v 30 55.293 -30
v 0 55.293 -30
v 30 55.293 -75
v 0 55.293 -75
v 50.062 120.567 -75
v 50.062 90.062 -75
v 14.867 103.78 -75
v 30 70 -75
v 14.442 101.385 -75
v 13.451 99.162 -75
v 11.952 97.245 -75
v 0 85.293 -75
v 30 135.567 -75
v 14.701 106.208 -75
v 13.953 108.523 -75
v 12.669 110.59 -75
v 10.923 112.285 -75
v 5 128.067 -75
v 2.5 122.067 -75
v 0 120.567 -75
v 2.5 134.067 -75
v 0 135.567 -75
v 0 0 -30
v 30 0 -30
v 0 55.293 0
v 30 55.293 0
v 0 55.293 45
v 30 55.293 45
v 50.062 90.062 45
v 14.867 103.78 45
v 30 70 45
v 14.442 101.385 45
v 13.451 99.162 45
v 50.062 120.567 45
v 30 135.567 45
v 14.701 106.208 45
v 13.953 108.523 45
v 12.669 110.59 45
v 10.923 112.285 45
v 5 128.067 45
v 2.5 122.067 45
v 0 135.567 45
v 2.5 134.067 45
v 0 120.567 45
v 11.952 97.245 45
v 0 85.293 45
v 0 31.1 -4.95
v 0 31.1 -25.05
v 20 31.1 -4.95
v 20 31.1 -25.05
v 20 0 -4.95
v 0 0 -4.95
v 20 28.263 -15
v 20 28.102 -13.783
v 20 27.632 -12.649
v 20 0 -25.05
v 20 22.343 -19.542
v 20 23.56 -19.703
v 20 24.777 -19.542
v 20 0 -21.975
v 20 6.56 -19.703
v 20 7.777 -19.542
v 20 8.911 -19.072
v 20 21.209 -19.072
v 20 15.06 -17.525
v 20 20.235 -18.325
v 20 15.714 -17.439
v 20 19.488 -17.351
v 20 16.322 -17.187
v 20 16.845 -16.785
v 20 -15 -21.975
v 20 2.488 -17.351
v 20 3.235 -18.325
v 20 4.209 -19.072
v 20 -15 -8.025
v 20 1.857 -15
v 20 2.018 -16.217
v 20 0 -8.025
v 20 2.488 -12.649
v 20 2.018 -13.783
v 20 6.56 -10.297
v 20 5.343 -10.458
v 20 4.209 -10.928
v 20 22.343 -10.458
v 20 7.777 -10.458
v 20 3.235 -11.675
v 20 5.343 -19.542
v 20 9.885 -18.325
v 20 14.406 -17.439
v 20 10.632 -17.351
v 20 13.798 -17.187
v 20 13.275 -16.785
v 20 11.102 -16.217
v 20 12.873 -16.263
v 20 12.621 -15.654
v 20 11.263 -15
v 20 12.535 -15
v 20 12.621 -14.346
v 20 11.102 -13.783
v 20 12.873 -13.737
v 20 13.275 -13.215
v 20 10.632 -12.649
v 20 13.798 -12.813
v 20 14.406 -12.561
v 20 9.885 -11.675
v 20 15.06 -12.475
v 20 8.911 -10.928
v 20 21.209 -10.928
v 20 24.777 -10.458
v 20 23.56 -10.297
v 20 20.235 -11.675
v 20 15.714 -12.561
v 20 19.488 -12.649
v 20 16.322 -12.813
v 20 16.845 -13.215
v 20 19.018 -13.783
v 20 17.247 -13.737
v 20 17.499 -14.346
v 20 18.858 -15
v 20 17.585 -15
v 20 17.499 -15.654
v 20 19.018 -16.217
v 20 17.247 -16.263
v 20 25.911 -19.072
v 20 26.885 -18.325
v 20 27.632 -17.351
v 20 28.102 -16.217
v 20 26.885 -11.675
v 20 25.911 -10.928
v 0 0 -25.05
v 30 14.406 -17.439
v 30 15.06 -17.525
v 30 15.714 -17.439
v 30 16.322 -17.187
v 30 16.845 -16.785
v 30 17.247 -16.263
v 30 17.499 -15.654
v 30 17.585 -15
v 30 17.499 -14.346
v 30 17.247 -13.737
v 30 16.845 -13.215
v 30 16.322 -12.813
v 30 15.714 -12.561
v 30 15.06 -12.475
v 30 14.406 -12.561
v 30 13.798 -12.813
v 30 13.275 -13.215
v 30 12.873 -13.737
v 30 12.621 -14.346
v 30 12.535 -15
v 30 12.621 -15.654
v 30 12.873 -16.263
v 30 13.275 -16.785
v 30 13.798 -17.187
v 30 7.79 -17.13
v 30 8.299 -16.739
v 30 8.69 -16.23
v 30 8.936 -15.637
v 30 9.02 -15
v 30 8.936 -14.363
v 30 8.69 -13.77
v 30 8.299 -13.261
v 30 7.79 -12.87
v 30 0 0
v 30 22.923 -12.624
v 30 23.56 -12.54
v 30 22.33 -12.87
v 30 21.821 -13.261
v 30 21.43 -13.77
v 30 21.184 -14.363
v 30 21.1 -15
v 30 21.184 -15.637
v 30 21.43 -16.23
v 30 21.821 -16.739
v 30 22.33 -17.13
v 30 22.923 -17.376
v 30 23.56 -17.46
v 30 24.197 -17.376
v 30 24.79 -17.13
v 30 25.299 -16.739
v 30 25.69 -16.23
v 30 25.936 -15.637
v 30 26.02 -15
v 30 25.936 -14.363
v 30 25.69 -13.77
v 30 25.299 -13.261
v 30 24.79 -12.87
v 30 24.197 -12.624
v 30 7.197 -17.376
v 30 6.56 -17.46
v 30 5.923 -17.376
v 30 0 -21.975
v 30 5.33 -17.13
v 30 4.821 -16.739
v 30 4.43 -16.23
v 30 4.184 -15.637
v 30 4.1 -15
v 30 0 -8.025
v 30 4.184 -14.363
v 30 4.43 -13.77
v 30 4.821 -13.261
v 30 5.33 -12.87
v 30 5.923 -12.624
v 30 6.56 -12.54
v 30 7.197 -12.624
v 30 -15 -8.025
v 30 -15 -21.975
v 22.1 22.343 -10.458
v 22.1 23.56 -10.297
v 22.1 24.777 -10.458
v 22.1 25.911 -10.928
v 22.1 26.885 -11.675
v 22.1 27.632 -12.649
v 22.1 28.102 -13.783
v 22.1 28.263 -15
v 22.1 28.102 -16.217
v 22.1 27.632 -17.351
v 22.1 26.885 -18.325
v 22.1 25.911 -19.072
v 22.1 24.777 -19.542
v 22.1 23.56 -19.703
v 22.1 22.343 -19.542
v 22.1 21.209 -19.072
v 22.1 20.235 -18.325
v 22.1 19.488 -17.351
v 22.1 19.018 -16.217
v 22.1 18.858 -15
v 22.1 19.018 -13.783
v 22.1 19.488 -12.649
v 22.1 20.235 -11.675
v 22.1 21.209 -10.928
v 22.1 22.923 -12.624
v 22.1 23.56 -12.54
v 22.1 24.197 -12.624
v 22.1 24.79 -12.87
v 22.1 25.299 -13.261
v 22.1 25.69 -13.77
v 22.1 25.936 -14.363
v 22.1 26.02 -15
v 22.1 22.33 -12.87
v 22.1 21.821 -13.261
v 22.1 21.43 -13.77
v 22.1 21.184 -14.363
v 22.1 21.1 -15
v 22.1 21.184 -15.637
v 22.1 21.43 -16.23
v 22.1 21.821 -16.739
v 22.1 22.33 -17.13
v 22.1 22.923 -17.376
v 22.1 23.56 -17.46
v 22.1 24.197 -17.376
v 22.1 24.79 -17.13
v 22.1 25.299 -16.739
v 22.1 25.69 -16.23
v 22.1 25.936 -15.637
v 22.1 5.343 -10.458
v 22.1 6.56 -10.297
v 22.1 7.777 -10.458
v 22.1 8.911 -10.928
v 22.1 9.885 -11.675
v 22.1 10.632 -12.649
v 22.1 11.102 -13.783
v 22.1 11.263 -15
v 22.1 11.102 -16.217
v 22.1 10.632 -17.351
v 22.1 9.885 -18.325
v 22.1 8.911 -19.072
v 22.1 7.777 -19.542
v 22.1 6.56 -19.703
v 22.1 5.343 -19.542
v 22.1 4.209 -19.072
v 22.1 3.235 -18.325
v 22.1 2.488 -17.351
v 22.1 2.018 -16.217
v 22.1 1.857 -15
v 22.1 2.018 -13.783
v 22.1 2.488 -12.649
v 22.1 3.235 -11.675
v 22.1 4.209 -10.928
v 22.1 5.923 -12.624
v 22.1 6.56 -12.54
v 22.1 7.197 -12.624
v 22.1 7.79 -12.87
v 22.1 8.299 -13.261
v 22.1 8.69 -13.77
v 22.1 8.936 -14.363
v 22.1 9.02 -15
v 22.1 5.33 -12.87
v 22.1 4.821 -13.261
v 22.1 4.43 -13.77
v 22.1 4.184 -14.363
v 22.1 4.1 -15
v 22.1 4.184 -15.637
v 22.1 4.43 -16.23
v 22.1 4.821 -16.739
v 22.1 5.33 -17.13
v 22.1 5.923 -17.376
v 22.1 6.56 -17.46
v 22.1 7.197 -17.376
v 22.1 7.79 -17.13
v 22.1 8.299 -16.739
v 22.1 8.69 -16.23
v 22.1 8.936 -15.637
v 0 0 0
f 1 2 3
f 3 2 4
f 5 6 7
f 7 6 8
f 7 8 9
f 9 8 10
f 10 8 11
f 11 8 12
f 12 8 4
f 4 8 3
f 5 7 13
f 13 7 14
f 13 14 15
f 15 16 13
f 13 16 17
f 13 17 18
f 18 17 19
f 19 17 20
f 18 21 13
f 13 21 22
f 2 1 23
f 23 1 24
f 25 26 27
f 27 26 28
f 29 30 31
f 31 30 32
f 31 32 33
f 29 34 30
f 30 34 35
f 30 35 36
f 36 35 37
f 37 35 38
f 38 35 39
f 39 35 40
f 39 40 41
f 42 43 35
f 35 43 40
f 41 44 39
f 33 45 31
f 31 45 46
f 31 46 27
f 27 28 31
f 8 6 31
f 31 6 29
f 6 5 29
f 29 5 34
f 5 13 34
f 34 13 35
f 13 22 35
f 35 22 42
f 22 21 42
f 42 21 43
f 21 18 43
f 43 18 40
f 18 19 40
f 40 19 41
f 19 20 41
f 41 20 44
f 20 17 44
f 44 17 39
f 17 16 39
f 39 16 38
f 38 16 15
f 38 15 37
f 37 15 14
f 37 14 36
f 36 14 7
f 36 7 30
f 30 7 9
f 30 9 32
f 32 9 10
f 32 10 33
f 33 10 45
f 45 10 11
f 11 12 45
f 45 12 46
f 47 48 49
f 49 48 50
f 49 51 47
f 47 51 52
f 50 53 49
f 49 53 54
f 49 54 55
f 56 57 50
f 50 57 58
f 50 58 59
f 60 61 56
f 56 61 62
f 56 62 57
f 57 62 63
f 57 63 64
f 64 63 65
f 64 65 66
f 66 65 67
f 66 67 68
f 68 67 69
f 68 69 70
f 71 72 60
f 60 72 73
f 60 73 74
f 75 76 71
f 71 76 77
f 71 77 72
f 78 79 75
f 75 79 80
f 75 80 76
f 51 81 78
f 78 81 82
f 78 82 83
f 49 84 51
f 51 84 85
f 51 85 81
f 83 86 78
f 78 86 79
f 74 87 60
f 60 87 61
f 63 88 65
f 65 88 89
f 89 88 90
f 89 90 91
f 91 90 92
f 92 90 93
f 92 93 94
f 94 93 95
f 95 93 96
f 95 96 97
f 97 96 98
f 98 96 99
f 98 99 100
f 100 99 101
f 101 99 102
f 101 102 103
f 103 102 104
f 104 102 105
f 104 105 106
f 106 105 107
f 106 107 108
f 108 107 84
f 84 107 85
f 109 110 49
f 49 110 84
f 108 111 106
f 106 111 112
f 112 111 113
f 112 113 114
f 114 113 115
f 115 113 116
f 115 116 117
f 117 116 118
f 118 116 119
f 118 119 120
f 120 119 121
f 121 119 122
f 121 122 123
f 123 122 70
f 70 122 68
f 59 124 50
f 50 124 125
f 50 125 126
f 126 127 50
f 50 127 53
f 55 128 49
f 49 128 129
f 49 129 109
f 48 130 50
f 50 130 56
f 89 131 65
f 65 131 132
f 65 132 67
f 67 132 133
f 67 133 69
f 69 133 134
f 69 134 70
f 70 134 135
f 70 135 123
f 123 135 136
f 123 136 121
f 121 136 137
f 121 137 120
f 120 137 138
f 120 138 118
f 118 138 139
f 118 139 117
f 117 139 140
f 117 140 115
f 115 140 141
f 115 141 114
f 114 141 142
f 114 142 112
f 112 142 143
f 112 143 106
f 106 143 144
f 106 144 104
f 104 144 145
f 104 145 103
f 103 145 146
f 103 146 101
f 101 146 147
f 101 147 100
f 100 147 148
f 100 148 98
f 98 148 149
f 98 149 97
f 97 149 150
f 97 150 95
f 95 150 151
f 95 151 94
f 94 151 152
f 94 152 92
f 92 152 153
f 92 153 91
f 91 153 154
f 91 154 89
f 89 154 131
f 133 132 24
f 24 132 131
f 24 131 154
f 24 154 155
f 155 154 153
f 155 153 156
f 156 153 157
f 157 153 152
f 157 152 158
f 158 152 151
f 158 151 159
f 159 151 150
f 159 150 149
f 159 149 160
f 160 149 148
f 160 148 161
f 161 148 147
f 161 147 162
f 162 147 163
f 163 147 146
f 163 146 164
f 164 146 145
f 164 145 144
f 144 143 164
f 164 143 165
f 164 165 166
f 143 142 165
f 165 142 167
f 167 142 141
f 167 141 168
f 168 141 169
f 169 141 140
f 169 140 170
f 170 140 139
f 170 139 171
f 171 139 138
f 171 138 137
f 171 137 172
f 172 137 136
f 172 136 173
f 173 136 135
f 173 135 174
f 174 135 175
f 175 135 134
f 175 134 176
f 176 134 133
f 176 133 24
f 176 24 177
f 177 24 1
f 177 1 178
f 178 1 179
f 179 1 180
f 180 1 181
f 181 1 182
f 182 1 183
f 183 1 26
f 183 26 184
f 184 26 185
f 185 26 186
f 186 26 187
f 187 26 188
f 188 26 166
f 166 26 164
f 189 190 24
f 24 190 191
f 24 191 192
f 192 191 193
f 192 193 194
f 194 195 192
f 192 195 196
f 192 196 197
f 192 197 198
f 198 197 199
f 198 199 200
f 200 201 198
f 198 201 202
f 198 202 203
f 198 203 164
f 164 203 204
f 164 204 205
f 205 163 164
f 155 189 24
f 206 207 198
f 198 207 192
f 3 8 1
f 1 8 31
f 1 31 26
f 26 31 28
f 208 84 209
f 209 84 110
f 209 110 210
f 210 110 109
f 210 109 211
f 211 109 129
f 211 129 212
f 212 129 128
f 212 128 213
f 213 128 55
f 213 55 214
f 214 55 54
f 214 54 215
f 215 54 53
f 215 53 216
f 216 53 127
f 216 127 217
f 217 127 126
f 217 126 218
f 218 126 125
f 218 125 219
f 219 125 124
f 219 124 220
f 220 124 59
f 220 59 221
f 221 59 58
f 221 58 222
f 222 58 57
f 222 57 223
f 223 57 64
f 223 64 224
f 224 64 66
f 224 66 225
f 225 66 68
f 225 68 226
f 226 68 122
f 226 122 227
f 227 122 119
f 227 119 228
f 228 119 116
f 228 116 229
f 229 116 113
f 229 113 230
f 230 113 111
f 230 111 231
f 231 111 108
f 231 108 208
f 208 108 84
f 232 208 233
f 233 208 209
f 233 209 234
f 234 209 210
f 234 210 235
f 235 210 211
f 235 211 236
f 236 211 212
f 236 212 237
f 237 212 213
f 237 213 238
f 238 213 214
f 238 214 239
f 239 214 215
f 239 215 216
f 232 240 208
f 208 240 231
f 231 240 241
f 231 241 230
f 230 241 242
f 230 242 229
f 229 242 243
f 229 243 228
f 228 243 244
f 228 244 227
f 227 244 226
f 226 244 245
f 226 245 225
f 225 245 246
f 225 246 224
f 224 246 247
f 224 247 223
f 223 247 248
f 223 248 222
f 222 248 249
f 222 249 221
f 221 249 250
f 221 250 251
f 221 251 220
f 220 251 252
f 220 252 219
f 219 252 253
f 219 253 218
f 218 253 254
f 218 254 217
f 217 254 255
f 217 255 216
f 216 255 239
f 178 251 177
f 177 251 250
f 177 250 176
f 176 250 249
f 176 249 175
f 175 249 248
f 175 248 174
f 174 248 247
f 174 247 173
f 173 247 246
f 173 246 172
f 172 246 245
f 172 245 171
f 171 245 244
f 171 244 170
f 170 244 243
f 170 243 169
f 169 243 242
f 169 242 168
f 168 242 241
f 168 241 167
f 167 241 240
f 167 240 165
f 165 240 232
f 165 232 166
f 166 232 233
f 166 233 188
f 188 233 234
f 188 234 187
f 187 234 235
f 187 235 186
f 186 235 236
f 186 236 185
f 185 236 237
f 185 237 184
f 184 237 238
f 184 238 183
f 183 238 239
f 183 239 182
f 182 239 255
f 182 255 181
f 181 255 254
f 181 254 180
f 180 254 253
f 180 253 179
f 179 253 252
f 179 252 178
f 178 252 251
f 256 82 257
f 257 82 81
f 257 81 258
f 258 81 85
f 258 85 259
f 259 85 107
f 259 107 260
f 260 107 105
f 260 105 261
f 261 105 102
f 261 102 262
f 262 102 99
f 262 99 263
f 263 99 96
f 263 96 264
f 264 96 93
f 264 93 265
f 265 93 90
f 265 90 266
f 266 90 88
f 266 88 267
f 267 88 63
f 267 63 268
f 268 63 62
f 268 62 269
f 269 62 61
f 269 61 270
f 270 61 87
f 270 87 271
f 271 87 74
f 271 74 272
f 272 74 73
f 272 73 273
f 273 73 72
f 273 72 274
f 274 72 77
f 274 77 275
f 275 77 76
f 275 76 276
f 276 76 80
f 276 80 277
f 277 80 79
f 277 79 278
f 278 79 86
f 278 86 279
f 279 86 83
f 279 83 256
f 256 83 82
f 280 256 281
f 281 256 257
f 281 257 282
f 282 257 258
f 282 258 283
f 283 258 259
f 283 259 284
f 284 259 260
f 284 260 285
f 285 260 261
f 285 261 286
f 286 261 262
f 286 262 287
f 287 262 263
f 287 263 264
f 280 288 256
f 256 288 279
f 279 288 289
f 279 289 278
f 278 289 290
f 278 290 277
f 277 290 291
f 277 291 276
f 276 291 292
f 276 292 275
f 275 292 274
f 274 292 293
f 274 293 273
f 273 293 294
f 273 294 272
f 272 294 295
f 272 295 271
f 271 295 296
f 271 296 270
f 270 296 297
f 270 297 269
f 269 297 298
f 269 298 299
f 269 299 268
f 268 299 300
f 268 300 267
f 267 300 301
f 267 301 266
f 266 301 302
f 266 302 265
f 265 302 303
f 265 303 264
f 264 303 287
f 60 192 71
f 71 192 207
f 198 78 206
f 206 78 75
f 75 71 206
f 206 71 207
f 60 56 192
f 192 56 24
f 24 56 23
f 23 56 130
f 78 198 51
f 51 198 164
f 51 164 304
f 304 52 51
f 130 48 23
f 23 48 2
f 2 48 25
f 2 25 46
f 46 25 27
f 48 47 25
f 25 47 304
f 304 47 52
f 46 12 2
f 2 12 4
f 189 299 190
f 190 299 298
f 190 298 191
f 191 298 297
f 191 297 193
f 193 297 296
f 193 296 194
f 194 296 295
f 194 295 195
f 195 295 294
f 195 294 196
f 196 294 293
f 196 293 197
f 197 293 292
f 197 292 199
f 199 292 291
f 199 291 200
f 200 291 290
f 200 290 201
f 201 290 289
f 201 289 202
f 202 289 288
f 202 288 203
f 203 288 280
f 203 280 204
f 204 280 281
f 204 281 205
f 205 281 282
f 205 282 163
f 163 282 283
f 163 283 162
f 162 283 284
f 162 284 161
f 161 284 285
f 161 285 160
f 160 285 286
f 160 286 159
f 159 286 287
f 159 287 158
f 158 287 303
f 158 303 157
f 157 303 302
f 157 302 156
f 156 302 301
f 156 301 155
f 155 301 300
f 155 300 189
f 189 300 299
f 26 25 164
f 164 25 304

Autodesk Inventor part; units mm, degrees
ref_plane "YZ Plane" through (0, 0, 0) normal (1, 0, 0) x (0, 1, 0)
ref_plane "XZ Plane" through (0, 0, 0) normal (0, 1, 0) x (-1, 0, 0)
sketch "Sketch1" plane through (0, 0, 0) normal (0, 0, 1) x (1, 0, 0)
  line L0 (0, 0) -> (25, 0)
  line L1 (25, 0) -> (25, 40)
  line L2 (25, 40) -> (0, 40)
  line L3 (0, 40) -> (0, 0)
  dimension "d1" = 25
  dimension "d2" = 40
  dimension "d3" = 25
extrude "Extrusion1" add sketch "Sketch1" against normal blind 30
sketch "Sketch2" plane through (25, 0, 0) normal (1, 0, 0) x (0, 0, -1)
  line L0 (0, 0) -> (30, 0) projected
  circle A0 centre (15, 6.56) radius 2.46
extrude "Extrusion2" cut sketch "Sketch2" against normal blind 30
sketch "Sketch3" plane through (0, 0, 0) normal (-1, 0, 0) x (0, 0, 1)
  line L0 (0, 0) -> (-30, 0) projected
  line L1 (-25.05, 0) -> (-4.95, 0)
  line L2 (-4.95, 0) -> (-4.95, 33.12)
  line L3 (-4.95, 33.12) -> (-25.05, 33.12)
  line L4 (-25.05, 33.12) -> (-25.05, 0)
  dimension "d11" = 20.1
extrude "Extrusion3" cut sketch "Sketch3" against normal blind 20
sketch "Sketch4" plane through (0, 0, 0) normal (0, -1, 0) x (1, 0, 0)
  line L0 (20, -4.95) -> (20, -25.05) projected
  line L1 (20, -15) -> (25, -15)
  line L2 (25, 0) -> (25, -30) projected
  line L3 (20, -8.025) -> (25, -8.025)
  line L4 (25, -8.025) -> (25, -21.975)
  line L5 (25, -21.975) -> (20, -21.975)
  line L6 (20, -21.975) -> (20, -8.025)
  line L7 (20, -8.025) -> (25, -21.975) construction
  line L8 (25, -8.025) -> (20, -21.975) construction
  line L9 (25, -12.54) -> (25, -17.46) projected
  point P0 (0, 0)
  point P1 (22.5, -15)
  dimension "d14" = 13.95
extrude "Extrusion4" add sketch "Sketch4" along normal blind 15
sketch "Sketch5" plane through (20, 0, 0) normal (-1, 0, 0) x (0, 0, 1)
  circle A0 centre (-15, 6.56) radius 2.46 projected
  circle A1 centre (-15, 6.56) radius 4.7025
  circle A2 centre (-15, 6.56) radius 2.46 projected
  circle A3 centre (-15, 6.56) radius 2.46
  point P0 (0, 0)
  dimension "d17" = 9.405
extrude "Extrusion5" cut sketch "Sketch5" against normal blind 2.1
sketch "Sketch6" plane through (25, 0, 0) normal (1, 0, 0) x (0, 0, -1)
  circle A0 centre (15, 6.56) radius 4.7025 projected
  line L0 (15, 6.56) -> (15, 23.56)
  circle A1 centre (15, 23.56) radius 2.46
  point P0 (0, 0)
  dimension "d20" = 17
  dimension "d21" = 4.92
extrude "Extrusion6" cut sketch "Sketch6" against normal blind 10 contours A1
sketch "Sketch7" plane through (20, 0, 0) normal (-1, 0, 0) x (0, 0, 1)
  circle A0 centre (-15, 23.56) radius 2.46 projected
  circle A1 centre (-15, 23.56) radius 4.7025
  point P0 (0, 0)
  dimension "d24" = 9.405
extrude "Extrusion7" cut sketch "Sketch7" against normal blind 2.1
sketch "Sketch9" plane through (25, 0, 0) normal (1, 0, 0) x (0, 0, -1)
  circle A0 centre (15, 6.56) radius 2.46 projected
  circle A1 centre (15, 6.56) radius 2.46
  circle A2 centre (15, 23.56) radius 2.46 projected
  circle A3 centre (15, 23.56) radius 2.46
  line L0 (30, 40) -> (30, 0) projected
  line L1 (30, 0) -> (30, 40)
  line L2 (30, 40) -> (0, 40)
  line L3 (0, 40) -> (0, 0)
  line L4 (0, 0) -> (8.025, 0) projected
  line L5 (21.975, 0) -> (21.975, -15)
  line L6 (21.975, -15) -> (8.025, -15)
  line L7 (8.025, -15) -> (8.025, 0)
  line L8 (0, 0) -> (8.025, 0)
  line L9 (21.975, 0) -> (30, 0)
extrude "Extrusion8" add sketch "Sketch9" along normal blind 5
sketch "Sketch10" plane through (0, 40, 0) normal (0, 1, 0) x (1, 0, 0)
  line L0 (0, 30) -> (30, 30) projected
  line L1 (30, 0) -> (0, 0) projected
  line L2 (0, 30) -> (30, 30)
  line L3 (30, 30) -> (30, 0)
  line L4 (30, 0) -> (0, 0)
  line L5 (0, 0) -> (0, 30)
extrude "Extrusion9" add sketch "Sketch10" along normal blind 30
sketch "Sketch12" plane through (30, 0, 0) normal (1, 0, 0) x (0, 0, -1)
  circle A0 centre (15, 6.56) radius 2.46 projected
  line L0 (15, 6.56) -> (15, 15.06)
  circle A1 centre (15, 15.06) radius 2.525
  point P0 (0, 0)
  dimension "d31" = 8.5
  dimension "d33" = 5.05
extrude "Extrusion10" cut sketch "Sketch12" against normal blind 30 contours A1
sketch "Sketch15" plane through (0, 0, -25.05) normal (-1, 0, 0) x (0, 0, 1)
  line L0 (0, 33.12) -> (20.1, 33.12) projected
  line L1 (20.1, 33.12) -> (20.1, 0) projected
  line L2 (0, 33.12) -> (20.1, 33.12)
  line L3 (20.1, 33.12) -> (20.1, 31.1)
  line L4 (20.1, 31.1) -> (0, 31.1)
  line L5 (0, 31.1) -> (0, 33.12)
  point P0 (25.05, 0)
  dimension "d57" = 2.02
extrude "Extrusion13" add sketch "Sketch15" against normal blind 20
sketch "Sketch17" plane through (0, 0, 0) normal (0, 0, 1) x (1, 0, 0)
  line L0 (0, 70) -> (30, 70) projected
  line L1 (30, 70) -> (50.0622, 90.0622)
  line L2 (30, 70) -> (80, 70) construction
  line L3 (11.9522, 97.2454) -> (0, 85.2932)
  line L4 (0, 70) -> (0, 85.2932)
  line L5 (0, 70) -> (0, 0) projected
  line L6 (0, 70) -> (30, 70)
  line L7 (10.923, 112.2849) -> (0, 120.567)
  line L8 (2.5, 134.067) -> (0, 135.567)
  line L9 (2.5, 134.067) -> (5, 128.067)
  line L10 (2.5, 122.067) -> (0, 120.567)
  line L11 (2.5, 122.067) -> (5, 128.067)
  line L12 (50.0622, 105.3553) -> (50.0622, 120.567)
  line L13 (50.0622, 105.3553) -> (50.0622, 90.0622)
  line L14 (0, 135.567) -> (30, 135.567)
  line L15 (30, 135.567) -> (50.0622, 120.567)
  arc A0 (11.9522, 97.2454) -> (10.923, 112.2849) centre (4.8811, 104.3165) ccw
  dimension "d61" = 45
  dimension "d62" = 32.0271
  dimension "d71" = 30
  dimension "d72" = 10
extrude "Extrusion14" add sketch "Sketch17" against normal blind 30
sketch "Sketch19" plane through (0, 0, 0) normal (0, 0, 1) x (1, 0, 0)
  line L0 (30, 0) -> (30, 70) projected
  line L1 (30, 70) -> (50.0622, 90.0622) projected
  line L2 (30, 70) -> (50.0622, 90.0622)
  line L3 (50.0622, 120.567) -> (50.0622, 90.0622) projected
  line L4 (50.0622, 90.0622) -> (50.0622, 120.567)
  line L5 (30, 135.567) -> (50.0622, 120.567) projected
  line L6 (50.0622, 120.567) -> (30, 135.567)
  line L7 (0, 135.567) -> (30, 135.567) projected
  line L8 (30, 135.567) -> (0, 135.567)
  line L9 (5, 128.067) -> (2.5, 134.067) projected
  line L10 (0, 135.567) -> (2.5, 134.067)
  line L11 (2.5, 134.067) -> (5, 128.067)
  line L12 (2.5, 122.067) -> (5, 128.067) projected
  line L13 (5, 128.067) -> (2.5, 122.067)
  line L14 (0, 120.567) -> (2.5, 122.067) projected
  line L15 (2.5, 122.067) -> (0, 120.567)
  line L16 (10.923, 112.2849) -> (0, 120.567) projected
  line L17 (0, 120.567) -> (10.923, 112.2849)
  line L18 (11.9522, 97.2454) -> (0, 85.2932) projected
  line L19 (11.9522, 97.2454) -> (0, 85.2932)
  line L20 (0, 85.2932) -> (0, 55.2932)
  line L21 (0, 0) -> (0, 85.2932) projected
  line L22 (0, 55.2932) -> (30, 55.2932)
  line L23 (30, 55.2932) -> (30, 70)
  arc A0 (11.9522, 97.2454) -> (10.923, 112.2849) centre (4.8811, 104.3165) ccw
  dimension "d75" = 30
  dimension "d76" = 30
extrude "Extrusion15" add sketch "Sketch19" along normal blind 45
ref_plane "Work Plane1" through (0, 0, -15) normal (0, 0, 1) x (1, 0, 0)
mirror "Mirror1" about plane through (0, 0, -15) normal (0, 0, 1) of "Extrusion15"
properties part number "rec_c_12mm_x_120mm"
